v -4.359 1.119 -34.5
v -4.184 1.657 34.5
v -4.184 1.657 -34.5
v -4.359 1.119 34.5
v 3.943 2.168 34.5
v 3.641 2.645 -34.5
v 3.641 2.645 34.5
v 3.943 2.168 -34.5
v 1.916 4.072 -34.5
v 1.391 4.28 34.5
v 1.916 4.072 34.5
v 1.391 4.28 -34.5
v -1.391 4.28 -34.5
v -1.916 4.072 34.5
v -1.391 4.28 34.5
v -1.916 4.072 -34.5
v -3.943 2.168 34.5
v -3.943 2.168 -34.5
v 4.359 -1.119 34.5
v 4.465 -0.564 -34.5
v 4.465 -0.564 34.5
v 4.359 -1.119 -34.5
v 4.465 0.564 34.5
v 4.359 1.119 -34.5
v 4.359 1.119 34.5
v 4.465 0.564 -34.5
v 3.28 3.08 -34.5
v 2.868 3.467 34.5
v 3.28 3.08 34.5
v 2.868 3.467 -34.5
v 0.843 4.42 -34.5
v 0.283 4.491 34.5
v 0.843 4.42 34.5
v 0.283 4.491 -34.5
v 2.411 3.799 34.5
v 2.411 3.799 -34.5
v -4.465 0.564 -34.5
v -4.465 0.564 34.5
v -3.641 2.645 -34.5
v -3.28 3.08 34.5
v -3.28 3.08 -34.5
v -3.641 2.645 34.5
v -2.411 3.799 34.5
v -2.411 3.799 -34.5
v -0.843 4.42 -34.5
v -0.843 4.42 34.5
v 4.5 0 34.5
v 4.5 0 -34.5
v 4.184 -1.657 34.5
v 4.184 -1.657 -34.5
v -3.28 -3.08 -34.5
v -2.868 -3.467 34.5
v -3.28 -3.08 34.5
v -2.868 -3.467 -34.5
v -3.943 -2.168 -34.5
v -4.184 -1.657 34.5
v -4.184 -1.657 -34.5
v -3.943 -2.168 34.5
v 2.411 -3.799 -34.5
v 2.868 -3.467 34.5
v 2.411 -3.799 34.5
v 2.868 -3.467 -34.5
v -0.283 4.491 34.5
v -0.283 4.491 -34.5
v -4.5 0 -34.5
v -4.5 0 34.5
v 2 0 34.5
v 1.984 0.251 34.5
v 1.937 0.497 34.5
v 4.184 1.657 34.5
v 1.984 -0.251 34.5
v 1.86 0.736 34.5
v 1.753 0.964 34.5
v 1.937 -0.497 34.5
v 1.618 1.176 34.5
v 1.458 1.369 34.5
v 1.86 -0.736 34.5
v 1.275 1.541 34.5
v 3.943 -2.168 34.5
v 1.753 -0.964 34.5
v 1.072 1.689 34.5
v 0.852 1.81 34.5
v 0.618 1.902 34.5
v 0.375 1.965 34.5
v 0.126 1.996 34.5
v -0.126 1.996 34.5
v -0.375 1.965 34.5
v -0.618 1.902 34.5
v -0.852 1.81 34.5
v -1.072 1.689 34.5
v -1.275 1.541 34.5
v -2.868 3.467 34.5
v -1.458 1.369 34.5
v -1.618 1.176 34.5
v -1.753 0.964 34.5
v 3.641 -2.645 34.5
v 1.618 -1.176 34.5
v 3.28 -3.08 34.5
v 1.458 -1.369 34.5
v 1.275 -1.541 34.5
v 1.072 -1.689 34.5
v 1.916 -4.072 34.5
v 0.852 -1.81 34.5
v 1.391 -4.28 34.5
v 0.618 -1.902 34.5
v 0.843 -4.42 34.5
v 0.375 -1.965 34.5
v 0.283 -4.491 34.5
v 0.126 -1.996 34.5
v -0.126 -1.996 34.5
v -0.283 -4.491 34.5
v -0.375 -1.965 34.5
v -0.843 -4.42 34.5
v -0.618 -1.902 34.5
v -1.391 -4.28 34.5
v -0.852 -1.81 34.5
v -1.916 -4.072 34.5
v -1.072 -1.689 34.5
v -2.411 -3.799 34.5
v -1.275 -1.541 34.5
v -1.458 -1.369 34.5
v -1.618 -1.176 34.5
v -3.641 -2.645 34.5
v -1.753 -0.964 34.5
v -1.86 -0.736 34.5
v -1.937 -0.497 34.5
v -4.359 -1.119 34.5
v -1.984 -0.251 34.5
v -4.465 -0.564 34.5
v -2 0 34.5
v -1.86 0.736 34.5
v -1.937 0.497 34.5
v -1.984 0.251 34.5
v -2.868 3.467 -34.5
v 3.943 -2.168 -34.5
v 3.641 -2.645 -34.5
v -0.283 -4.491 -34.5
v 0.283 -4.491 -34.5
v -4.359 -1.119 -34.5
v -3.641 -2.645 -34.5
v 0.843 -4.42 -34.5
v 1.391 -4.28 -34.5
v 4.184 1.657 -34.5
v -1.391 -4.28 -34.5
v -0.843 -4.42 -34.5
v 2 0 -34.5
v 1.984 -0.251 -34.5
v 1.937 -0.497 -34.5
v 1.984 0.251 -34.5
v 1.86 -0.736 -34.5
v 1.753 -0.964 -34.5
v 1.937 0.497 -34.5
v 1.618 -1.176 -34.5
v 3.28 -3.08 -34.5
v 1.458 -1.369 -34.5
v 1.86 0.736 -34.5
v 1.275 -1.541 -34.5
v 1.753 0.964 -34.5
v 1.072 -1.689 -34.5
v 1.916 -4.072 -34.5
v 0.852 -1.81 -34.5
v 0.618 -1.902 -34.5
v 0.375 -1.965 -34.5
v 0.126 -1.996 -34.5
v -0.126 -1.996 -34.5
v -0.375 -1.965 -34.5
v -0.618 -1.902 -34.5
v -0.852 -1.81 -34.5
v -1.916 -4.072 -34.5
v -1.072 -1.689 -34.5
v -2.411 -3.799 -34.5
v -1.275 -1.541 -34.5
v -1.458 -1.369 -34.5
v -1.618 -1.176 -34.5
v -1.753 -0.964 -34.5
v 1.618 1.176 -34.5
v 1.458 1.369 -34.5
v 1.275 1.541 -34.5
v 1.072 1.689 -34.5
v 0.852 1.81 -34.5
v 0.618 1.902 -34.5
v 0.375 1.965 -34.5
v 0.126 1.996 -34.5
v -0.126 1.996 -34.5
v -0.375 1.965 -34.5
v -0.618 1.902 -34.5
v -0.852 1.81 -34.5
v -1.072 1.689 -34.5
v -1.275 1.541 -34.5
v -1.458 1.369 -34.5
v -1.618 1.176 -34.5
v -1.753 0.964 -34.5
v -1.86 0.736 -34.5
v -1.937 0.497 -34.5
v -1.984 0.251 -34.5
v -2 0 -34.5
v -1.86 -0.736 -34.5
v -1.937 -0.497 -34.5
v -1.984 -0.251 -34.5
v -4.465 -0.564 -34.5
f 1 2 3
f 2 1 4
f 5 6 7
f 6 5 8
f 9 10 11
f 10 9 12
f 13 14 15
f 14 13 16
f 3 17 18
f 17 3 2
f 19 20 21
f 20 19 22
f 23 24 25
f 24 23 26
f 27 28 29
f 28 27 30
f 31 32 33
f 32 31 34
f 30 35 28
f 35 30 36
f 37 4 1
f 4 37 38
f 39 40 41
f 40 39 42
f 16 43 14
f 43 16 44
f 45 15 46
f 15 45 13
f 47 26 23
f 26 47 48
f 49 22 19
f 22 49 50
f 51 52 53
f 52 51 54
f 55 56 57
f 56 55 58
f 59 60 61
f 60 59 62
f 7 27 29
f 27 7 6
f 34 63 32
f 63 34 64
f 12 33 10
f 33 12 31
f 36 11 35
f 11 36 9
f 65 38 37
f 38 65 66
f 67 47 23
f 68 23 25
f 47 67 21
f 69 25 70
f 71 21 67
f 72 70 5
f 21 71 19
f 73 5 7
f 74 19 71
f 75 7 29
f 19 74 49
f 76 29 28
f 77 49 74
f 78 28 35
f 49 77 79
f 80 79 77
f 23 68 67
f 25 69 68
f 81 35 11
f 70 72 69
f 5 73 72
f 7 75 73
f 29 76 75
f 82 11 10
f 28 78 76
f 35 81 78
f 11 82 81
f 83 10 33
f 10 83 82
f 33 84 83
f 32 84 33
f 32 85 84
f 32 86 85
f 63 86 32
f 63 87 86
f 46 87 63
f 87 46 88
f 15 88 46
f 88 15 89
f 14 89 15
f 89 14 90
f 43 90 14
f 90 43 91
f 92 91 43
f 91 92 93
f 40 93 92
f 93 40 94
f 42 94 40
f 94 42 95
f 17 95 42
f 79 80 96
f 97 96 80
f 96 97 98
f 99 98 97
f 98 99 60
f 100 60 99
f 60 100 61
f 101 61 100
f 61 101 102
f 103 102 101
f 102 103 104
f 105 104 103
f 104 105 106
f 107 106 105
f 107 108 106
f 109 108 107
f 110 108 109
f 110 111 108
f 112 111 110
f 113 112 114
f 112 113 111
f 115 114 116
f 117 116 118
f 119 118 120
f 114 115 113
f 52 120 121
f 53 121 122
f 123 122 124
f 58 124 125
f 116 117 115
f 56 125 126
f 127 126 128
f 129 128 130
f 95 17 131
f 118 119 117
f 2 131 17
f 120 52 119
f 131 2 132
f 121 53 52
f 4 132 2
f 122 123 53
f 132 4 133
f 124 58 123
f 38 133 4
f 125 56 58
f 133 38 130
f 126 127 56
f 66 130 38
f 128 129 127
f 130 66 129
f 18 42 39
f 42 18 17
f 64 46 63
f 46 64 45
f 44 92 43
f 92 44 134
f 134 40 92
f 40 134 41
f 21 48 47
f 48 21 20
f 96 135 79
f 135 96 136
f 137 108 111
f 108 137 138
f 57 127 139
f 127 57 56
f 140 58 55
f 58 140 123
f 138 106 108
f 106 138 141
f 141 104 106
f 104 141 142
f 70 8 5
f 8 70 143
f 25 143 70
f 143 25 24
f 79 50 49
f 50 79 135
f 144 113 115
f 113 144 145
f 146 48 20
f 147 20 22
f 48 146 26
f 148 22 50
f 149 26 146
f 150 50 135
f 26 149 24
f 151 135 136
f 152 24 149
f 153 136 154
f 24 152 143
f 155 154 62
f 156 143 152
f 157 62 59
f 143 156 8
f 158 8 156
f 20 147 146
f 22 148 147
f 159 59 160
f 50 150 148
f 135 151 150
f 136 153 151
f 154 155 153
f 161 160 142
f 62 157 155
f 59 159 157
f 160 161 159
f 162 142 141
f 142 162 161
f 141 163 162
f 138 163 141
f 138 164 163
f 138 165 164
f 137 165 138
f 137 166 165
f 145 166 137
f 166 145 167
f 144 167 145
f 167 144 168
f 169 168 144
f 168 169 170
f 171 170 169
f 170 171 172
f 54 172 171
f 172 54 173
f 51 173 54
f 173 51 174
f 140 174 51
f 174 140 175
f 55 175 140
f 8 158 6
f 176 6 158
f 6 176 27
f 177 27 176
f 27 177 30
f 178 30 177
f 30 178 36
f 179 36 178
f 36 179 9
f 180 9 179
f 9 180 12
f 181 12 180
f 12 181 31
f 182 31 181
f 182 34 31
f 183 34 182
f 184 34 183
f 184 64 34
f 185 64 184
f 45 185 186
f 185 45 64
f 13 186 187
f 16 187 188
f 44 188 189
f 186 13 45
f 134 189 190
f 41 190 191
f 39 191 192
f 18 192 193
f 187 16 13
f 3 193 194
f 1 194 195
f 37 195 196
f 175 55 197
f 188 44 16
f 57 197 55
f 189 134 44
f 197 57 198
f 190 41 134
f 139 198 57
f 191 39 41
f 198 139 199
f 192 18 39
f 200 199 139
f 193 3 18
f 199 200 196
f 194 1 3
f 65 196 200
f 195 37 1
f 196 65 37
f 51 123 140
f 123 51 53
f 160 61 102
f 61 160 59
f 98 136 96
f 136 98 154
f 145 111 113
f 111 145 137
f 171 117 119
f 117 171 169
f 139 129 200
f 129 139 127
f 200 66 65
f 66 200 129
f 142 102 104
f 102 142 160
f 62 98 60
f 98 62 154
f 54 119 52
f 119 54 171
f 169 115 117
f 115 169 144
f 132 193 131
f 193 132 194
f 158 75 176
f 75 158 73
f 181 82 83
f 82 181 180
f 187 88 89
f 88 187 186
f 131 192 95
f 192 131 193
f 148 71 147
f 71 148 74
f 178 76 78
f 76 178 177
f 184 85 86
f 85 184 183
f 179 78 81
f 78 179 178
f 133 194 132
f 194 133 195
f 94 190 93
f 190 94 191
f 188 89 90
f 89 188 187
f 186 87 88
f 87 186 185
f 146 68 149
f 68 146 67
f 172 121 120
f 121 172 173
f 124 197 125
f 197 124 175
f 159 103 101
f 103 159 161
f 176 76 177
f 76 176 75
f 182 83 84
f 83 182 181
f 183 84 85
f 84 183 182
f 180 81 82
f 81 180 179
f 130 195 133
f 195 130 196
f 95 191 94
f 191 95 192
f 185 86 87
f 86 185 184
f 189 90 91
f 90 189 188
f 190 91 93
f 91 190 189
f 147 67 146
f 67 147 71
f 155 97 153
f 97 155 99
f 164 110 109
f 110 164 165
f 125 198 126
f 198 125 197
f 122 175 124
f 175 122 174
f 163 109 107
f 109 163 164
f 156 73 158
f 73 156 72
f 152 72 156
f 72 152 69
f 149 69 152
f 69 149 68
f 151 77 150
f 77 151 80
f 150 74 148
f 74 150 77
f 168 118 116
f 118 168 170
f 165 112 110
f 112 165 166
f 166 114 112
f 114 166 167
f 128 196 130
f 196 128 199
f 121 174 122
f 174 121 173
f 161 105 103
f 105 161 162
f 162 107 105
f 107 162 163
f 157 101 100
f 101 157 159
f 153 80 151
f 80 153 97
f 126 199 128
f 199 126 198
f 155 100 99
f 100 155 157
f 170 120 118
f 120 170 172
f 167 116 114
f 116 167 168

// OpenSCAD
$fn = 50;


difference() {
	union() {
		translate(v = [0, 0, -34.5000000000]) {
			cylinder(h = 69, r = 4.5000000000);
		}
	}
	union() {
		translate(v = [0, 0, -100.0000000000]) {
			cylinder(h = 200, r = 2);
		}
	}
}
